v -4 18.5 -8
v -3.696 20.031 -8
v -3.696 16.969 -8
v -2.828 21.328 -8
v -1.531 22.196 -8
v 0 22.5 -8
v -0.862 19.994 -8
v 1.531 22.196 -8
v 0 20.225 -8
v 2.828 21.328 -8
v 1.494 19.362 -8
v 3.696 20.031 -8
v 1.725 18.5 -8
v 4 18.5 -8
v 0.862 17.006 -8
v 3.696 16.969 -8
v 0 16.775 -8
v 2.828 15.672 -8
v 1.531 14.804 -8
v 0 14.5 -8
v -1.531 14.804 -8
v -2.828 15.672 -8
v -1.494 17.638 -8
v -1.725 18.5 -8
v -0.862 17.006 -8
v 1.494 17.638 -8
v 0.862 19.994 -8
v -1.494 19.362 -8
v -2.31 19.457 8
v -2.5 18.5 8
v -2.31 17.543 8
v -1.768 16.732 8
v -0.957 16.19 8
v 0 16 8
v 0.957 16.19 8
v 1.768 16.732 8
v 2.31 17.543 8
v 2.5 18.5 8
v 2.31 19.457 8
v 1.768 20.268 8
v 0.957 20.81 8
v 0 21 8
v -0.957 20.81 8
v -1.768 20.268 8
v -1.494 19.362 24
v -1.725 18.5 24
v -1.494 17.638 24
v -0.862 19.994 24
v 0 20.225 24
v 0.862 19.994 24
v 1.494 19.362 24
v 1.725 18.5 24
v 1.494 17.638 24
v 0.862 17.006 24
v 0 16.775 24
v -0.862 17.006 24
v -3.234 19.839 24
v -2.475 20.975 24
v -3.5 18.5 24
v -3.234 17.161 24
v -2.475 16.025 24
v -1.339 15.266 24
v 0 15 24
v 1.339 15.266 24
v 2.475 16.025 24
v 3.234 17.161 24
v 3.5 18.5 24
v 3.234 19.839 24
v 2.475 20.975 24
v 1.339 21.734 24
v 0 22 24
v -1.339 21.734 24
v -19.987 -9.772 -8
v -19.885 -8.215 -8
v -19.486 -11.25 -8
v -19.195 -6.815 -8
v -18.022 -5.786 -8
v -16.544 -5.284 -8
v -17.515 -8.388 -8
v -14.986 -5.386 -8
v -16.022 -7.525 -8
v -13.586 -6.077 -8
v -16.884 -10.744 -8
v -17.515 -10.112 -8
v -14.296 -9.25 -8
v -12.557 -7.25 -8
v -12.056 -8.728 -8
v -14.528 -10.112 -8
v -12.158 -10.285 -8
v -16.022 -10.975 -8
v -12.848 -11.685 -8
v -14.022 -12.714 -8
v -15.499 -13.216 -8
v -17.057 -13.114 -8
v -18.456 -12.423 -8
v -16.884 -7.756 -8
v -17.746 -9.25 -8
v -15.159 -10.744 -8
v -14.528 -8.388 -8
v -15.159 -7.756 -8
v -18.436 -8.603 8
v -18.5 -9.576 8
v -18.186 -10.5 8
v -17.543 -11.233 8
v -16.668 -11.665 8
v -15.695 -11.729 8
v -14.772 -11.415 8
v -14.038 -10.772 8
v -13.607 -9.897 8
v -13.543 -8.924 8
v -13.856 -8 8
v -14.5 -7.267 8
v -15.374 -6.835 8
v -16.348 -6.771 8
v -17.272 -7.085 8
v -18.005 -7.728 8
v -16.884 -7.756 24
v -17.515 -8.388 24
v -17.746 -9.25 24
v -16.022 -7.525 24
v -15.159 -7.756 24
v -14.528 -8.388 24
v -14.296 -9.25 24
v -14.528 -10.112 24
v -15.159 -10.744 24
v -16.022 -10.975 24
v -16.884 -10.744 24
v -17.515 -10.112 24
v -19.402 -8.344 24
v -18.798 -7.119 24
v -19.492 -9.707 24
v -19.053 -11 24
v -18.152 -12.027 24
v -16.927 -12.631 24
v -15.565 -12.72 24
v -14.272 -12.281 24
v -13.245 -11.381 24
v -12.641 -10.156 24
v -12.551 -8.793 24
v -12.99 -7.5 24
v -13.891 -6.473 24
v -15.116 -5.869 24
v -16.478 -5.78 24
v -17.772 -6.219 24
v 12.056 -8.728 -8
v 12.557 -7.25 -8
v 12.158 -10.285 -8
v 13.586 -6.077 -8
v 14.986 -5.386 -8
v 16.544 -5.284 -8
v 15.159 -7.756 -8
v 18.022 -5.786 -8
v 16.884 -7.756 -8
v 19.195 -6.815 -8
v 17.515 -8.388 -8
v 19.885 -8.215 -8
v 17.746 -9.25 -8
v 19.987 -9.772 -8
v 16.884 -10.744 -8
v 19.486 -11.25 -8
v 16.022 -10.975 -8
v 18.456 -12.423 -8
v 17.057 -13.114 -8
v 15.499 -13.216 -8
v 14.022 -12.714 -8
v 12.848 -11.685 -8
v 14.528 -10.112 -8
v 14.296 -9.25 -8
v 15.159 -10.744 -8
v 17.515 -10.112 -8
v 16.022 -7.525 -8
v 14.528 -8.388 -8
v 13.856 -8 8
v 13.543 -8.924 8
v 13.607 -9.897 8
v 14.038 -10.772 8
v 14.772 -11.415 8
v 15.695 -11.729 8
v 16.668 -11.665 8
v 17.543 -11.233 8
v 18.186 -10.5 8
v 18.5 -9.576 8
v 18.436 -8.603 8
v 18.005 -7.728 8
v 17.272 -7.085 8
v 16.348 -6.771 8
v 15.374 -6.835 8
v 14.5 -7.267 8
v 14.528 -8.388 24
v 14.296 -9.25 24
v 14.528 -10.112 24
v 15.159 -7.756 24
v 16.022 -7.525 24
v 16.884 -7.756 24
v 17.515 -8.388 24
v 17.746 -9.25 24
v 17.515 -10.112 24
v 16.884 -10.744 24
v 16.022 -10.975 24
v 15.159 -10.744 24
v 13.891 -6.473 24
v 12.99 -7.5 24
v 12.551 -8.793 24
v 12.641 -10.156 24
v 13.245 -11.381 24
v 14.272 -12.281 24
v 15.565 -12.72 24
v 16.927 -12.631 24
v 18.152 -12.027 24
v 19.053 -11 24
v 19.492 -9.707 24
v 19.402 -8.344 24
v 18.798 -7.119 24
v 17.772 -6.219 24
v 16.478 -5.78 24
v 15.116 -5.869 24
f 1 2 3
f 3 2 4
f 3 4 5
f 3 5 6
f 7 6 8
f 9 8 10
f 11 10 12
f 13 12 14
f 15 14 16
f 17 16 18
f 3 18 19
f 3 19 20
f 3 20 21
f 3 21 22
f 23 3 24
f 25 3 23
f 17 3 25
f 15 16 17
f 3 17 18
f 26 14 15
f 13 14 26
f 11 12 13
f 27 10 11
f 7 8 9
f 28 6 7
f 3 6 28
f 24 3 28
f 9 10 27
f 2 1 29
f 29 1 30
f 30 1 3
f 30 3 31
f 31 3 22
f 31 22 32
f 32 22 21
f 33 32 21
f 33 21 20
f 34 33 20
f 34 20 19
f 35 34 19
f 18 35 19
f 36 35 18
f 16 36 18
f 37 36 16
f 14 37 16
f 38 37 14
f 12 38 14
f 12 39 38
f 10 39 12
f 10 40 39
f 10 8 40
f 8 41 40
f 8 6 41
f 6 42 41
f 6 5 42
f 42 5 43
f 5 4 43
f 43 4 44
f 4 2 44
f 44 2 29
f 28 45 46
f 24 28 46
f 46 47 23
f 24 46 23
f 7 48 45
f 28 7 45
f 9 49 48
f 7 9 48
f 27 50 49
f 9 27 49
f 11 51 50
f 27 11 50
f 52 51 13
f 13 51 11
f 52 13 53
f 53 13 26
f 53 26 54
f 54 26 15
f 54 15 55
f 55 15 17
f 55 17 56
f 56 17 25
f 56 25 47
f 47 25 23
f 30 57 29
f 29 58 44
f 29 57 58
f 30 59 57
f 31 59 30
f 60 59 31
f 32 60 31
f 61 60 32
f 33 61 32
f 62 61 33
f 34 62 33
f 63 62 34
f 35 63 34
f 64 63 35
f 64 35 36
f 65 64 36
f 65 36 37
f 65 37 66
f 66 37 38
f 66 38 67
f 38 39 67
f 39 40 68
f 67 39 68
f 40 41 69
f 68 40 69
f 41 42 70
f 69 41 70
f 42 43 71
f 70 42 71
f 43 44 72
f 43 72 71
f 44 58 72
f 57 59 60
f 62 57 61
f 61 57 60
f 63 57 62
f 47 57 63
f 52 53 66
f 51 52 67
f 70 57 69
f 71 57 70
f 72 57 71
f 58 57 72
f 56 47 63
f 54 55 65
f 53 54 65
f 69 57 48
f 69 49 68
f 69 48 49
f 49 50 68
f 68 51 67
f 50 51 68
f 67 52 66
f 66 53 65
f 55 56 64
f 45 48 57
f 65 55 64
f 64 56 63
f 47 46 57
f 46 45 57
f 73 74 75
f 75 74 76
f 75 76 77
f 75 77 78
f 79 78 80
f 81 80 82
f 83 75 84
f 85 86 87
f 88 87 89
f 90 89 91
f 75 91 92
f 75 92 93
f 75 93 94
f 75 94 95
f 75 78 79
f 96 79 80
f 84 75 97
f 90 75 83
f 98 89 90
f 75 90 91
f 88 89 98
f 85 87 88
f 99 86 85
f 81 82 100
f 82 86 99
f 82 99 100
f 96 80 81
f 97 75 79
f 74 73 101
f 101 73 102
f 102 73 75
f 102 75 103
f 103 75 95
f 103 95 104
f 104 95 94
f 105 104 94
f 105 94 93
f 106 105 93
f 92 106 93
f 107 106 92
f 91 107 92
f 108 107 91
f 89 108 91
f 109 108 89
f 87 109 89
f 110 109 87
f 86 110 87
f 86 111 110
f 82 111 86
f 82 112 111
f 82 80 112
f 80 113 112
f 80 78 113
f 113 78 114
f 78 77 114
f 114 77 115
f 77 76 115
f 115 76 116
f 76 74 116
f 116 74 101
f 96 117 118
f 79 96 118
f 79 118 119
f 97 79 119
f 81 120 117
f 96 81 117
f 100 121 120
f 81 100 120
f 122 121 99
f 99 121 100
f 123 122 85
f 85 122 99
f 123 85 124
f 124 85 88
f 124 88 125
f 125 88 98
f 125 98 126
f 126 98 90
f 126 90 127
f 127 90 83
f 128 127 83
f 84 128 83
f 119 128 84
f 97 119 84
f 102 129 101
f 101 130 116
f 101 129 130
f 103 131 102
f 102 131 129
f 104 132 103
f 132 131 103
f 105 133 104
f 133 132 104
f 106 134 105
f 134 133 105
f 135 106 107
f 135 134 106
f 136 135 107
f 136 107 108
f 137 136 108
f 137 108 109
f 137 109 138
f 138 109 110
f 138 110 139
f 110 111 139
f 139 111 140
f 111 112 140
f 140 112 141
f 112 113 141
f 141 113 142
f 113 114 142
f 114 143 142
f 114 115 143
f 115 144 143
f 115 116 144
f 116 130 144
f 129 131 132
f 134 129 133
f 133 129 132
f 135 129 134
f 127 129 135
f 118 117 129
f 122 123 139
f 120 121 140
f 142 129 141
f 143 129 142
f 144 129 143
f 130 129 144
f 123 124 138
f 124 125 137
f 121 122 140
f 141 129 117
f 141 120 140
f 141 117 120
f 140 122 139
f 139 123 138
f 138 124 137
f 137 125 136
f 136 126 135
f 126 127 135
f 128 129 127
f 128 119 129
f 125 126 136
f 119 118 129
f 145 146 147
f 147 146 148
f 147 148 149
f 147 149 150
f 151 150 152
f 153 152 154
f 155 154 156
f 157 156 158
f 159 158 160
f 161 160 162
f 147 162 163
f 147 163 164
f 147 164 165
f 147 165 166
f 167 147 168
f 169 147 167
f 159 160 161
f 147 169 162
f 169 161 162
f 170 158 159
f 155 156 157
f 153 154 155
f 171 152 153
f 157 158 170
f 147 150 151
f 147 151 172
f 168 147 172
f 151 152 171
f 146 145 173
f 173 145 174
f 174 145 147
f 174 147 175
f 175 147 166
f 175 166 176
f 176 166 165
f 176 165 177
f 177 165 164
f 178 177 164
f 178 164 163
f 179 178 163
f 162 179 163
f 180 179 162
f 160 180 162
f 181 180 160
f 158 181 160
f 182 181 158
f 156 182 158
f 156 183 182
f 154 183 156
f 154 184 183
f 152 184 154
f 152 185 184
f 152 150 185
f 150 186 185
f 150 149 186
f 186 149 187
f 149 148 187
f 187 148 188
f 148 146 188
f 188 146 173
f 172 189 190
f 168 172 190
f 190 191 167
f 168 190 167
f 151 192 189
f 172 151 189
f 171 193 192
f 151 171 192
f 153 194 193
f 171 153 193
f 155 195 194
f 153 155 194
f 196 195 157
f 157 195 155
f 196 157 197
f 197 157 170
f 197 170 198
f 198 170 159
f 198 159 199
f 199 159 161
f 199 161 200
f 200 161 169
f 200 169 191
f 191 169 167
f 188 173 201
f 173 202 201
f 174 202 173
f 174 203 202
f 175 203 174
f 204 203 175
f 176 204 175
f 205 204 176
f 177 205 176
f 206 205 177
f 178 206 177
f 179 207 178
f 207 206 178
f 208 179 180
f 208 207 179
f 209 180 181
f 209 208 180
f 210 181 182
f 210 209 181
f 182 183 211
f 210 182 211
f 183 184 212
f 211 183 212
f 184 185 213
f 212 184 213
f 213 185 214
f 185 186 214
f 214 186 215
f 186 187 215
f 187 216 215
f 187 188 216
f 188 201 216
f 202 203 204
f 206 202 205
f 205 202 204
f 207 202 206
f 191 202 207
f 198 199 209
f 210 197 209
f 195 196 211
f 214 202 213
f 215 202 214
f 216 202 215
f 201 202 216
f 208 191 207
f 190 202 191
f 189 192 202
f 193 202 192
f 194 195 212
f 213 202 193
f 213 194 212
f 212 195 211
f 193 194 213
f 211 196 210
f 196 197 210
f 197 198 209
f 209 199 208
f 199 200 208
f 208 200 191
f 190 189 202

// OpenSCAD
// file: configuration.scad
// Increase this if your slicer or printer make holes too tight.
extra_radius = 0.1;

// OD = outside diameter, corner to corner.
m3_nut_od = 6.1;
m3_nut_radius = m3_nut_od/2 + 0.2 + extra_radius;

// Major diameter of metric 3mm thread.
m3_major = 2.85;
m3_radius = m3_major/2 + extra_radius;
m3_wide_radius = m3_major/2 + extra_radius + 0.2;

// OD = outside diameter, corner to corner.
m5_nut_od = 8.1;
m5_nut_radius = m5_nut_od/2 + 0.2 + extra_radius;

// Major diameter of metric 5mm thread.
m5_major = 4.85;
m5_radius = m5_major/2 + extra_radius;
m5_wide_radius = m5_major/2 + extra_radius + 0.2;

// NEMA17 stepper motors.
motor_shaft_diameter = 5;
motor_shaft_radius = motor_shaft_diameter/2 + extra_radius;

// Frame brackets. M3x8mm screws work best with 3.6 mm brackets.
thickness = 3.6;

// OpenBeam or Misumi. Currently only 15x15 mm, but there is a plan
// to make models more parametric and allow 20x20 mm in the future.
extrusion = 15;
// main file
include <configuration.scad>;

separation = 44;  // Distance between ball joint mounting faces.
offset = 22;  // Same as DELTA_EFFECTOR_OFFSET in Marlin.
mount_radius = 18.5;  // Hotend mounting screws, standard would be 25mm.
jhead_od_radius = 8;  // Hole for the hotend (J-Head diameter is 16mm).
jhead_id_radius = 6;
height = 6;
jhead_height=5;
mount_height=32;


  difference() {
    union() {

		for (a = [0:120:359]) rotate([0, 0, a]) {
    		  translate([0, mount_radius,0])cylinder(r1=4,r2=2.5, h=mount_height/2, center=true, $fn=16);
    		  translate([0, mount_radius,16])cylinder(r1=2.5,r2=3.5, h=mount_height/2, center=true, $fn=16);
		}
		
    }

	 
	
	
    for (a = [0:60:359]) rotate([0, 0, a]) {
      translate([0, mount_radius, 0])	cylinder(r=m3_wide_radius, h=2*mount_height+height, center=true, $fn=12);
    }

  }
